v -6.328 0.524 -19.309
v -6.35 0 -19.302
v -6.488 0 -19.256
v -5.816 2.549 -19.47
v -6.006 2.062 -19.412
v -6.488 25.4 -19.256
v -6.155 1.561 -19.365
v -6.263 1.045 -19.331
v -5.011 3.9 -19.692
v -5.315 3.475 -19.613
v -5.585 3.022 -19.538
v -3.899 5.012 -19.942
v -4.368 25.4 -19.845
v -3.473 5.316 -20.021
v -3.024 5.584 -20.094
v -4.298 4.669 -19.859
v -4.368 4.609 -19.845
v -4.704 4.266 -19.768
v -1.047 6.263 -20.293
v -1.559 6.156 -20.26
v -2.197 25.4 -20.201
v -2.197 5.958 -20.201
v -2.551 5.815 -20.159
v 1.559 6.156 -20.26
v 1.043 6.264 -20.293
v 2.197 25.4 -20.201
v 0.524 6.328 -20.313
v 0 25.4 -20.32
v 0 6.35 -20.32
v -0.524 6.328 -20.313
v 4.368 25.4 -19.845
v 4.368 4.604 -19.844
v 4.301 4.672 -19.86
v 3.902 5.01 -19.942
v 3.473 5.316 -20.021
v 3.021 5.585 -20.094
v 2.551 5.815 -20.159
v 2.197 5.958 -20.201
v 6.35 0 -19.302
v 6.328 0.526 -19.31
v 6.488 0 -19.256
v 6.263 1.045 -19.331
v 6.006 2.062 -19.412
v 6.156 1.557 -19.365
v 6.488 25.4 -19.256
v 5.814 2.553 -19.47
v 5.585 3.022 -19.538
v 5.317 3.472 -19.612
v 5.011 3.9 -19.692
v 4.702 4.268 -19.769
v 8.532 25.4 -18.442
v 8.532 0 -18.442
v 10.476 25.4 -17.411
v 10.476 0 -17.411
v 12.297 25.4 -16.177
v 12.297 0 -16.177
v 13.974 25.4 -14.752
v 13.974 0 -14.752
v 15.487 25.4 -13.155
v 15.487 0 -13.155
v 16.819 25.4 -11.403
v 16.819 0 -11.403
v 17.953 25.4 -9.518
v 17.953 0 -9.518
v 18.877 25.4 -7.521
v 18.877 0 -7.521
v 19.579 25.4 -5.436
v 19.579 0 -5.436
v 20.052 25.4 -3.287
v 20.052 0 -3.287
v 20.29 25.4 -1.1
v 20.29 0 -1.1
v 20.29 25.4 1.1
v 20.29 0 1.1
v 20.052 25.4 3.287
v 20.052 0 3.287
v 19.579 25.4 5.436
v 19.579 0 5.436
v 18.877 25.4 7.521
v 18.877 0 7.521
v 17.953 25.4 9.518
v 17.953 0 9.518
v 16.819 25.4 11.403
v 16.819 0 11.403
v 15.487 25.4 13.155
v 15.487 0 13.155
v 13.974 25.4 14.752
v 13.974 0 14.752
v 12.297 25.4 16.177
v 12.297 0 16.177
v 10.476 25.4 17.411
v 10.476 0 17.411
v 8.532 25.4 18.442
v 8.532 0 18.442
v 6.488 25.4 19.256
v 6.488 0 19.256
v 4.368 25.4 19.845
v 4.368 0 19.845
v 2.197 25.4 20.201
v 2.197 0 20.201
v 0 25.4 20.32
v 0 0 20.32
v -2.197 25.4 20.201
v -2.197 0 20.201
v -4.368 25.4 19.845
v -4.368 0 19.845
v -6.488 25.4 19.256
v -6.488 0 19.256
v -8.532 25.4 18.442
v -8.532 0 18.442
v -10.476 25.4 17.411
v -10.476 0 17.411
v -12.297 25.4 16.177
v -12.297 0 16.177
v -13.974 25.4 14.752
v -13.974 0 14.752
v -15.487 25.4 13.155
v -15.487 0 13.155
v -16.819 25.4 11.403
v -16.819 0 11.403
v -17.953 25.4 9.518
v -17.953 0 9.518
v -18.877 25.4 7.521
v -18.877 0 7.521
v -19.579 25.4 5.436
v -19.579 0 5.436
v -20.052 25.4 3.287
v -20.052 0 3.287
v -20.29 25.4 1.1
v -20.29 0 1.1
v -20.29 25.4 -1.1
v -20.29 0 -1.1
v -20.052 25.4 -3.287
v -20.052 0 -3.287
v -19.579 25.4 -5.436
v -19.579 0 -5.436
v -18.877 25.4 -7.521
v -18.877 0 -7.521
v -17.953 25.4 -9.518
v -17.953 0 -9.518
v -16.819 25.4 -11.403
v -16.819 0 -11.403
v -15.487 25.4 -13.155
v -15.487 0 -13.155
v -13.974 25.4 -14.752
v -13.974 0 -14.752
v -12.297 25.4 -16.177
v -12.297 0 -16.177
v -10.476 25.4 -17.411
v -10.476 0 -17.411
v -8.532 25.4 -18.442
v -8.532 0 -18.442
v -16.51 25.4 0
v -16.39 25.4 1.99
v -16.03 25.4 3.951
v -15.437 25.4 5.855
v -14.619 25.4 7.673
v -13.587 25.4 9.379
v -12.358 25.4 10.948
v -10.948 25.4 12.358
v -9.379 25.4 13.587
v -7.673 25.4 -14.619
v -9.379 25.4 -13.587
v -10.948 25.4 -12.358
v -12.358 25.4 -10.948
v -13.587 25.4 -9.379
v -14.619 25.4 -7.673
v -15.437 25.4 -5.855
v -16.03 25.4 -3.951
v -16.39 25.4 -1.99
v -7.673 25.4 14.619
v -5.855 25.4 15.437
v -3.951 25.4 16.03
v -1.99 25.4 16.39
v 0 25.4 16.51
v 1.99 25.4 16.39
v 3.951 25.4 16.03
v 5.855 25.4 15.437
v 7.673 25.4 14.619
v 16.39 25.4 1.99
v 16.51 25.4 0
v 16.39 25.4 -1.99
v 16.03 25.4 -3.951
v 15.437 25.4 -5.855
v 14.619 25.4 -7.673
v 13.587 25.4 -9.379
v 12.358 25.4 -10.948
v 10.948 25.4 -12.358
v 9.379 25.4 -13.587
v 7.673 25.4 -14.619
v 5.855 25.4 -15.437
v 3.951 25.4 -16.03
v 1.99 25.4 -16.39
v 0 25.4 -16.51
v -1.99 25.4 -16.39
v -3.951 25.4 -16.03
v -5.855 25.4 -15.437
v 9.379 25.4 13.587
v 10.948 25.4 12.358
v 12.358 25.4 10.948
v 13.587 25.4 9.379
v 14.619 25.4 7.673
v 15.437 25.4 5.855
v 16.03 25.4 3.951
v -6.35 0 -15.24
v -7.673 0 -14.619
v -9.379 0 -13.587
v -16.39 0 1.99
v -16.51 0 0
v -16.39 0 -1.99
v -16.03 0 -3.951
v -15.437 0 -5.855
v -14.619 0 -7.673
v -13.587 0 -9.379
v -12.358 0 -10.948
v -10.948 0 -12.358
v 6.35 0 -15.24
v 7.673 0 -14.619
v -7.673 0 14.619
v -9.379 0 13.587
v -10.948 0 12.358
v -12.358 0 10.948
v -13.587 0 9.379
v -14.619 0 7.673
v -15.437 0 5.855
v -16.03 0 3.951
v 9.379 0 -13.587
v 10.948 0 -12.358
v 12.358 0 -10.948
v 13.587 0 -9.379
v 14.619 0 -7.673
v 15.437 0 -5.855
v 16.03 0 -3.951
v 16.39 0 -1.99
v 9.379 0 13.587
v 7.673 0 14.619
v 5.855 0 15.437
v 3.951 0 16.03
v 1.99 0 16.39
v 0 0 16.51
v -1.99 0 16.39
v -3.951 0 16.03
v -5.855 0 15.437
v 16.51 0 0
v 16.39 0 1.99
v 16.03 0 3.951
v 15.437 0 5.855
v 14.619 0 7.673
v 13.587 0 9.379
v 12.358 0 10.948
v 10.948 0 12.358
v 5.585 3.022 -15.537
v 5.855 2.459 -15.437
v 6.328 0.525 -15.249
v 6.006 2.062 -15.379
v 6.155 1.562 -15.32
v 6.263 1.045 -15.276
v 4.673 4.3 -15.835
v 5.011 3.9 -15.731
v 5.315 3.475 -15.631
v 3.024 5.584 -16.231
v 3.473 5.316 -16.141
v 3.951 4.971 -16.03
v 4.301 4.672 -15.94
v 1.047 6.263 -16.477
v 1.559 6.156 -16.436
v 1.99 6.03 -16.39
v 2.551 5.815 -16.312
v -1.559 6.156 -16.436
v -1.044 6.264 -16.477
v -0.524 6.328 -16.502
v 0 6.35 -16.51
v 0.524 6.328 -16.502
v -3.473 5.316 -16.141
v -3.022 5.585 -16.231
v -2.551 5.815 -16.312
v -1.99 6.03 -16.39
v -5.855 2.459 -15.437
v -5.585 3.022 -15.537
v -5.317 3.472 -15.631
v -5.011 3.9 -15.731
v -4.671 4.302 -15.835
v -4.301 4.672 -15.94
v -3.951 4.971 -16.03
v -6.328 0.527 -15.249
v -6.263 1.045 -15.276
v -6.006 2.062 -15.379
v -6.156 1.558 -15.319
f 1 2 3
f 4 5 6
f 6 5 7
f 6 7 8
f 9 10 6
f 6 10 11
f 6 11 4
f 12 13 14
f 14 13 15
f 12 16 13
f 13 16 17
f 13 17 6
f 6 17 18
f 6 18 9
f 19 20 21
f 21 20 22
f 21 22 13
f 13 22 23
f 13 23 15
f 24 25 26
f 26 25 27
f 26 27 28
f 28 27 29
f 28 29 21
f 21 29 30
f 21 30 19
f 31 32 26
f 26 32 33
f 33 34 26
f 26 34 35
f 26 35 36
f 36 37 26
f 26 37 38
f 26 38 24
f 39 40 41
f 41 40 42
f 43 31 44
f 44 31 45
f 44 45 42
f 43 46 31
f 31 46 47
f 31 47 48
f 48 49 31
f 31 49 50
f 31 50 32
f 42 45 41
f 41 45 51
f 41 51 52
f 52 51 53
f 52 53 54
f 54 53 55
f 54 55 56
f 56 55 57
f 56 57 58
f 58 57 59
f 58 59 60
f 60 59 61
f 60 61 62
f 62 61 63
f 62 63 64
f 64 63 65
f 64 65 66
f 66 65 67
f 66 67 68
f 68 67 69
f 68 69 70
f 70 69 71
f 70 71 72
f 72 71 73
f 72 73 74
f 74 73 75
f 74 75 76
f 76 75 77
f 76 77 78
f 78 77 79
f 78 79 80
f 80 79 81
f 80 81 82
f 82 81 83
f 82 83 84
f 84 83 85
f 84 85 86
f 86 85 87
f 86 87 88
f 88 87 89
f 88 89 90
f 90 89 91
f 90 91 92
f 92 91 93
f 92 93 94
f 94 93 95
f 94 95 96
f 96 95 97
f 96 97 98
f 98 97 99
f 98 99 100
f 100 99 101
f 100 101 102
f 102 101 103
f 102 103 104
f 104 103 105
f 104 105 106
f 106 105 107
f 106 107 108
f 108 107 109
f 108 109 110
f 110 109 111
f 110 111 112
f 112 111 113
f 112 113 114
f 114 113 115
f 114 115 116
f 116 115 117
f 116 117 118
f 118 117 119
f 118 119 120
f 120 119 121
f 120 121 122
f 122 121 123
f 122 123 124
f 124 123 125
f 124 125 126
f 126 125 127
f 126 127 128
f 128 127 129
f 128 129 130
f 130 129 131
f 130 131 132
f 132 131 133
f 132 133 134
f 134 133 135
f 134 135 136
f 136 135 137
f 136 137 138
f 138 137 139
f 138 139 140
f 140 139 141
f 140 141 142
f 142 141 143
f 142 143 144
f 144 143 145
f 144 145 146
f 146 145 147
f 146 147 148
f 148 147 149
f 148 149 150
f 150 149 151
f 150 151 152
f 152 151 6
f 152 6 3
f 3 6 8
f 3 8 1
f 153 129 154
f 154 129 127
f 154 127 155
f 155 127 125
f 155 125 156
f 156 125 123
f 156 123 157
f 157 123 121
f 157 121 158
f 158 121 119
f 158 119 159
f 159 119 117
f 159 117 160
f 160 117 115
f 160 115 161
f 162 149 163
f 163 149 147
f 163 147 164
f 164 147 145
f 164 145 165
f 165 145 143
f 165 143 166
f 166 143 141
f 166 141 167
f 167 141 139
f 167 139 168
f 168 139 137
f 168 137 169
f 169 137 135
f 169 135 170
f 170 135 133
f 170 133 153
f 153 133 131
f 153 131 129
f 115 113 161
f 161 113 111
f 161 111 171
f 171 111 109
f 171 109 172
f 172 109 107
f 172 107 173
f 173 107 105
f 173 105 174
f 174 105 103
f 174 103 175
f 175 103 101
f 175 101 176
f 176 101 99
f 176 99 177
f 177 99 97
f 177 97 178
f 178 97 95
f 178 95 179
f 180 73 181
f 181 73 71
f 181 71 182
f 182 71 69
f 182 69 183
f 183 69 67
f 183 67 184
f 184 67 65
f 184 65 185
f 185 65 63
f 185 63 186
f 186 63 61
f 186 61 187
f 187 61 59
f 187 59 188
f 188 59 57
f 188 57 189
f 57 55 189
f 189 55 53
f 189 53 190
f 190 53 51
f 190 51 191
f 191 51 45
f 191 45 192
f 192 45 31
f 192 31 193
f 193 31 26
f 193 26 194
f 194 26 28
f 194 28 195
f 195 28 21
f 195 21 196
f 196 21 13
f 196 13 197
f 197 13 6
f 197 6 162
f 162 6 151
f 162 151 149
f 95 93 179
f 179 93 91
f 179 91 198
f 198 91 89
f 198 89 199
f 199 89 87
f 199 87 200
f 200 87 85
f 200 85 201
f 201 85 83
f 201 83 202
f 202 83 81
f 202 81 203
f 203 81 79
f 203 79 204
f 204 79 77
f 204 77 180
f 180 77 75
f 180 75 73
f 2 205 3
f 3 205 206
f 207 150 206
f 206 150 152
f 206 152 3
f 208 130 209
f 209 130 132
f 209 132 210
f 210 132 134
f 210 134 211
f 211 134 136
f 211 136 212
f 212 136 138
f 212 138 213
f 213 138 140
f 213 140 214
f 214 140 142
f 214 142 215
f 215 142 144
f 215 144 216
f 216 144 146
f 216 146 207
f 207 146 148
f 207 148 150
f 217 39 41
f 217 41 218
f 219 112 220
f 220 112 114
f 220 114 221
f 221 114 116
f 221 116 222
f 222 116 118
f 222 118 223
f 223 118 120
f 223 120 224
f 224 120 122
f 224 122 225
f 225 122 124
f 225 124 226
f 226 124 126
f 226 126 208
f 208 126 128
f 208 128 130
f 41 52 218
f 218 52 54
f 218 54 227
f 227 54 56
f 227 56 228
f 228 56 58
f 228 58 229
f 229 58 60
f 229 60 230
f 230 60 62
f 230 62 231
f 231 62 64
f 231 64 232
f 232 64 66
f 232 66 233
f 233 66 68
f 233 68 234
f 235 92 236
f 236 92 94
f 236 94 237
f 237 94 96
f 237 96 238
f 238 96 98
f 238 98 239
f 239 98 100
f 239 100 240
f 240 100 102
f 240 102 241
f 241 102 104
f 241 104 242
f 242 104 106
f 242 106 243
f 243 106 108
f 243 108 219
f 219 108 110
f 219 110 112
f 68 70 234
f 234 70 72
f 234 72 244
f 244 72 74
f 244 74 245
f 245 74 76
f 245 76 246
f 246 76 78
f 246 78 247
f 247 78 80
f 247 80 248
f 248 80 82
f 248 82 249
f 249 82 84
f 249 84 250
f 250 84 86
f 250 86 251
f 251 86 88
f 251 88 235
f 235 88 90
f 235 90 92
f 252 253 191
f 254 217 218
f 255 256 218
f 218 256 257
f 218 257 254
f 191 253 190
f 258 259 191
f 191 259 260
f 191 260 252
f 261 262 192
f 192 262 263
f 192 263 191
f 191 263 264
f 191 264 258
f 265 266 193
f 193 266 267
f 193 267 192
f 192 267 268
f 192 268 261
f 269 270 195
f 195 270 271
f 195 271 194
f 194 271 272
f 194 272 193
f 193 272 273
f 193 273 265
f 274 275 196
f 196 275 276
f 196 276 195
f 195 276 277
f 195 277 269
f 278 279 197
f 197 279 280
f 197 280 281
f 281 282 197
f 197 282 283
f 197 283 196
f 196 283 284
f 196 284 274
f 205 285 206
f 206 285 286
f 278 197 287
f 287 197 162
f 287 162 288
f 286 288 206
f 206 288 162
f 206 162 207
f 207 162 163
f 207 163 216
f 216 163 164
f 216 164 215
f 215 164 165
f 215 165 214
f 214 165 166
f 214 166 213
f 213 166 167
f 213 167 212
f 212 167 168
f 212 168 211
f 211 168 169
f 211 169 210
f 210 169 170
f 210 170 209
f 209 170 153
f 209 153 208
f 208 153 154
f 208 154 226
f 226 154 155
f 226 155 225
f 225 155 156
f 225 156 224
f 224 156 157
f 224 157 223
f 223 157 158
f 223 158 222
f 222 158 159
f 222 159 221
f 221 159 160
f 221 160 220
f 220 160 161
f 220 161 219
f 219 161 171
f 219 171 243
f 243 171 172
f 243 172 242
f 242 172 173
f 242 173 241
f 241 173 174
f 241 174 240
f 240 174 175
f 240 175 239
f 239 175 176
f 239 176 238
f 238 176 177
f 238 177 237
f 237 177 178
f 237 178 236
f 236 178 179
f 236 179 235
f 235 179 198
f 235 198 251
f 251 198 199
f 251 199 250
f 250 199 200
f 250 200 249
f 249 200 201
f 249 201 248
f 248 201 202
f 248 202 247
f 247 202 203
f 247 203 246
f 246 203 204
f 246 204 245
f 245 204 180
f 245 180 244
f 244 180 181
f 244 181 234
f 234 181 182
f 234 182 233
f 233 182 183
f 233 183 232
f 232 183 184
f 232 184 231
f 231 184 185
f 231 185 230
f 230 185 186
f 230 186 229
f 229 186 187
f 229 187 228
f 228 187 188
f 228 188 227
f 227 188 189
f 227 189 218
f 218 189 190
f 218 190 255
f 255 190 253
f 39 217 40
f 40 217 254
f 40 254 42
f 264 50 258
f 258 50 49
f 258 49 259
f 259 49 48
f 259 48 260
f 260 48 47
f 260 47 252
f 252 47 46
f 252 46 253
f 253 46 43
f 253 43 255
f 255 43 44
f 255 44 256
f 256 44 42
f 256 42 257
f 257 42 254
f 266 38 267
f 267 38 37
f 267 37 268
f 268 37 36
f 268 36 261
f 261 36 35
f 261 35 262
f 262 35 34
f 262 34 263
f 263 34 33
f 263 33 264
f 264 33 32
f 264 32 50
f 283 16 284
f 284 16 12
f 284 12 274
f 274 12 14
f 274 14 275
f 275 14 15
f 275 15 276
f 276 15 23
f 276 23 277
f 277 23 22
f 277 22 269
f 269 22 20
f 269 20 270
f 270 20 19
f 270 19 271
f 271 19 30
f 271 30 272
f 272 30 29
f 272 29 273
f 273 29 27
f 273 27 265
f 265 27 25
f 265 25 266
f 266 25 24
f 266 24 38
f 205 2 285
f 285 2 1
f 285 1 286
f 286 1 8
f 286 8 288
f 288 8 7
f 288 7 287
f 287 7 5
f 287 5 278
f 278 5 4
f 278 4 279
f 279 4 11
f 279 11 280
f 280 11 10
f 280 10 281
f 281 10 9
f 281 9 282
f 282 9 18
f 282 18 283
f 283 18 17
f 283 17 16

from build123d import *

# Parameters (mm, degrees)
SKETCH1_R           = 20.32
BOSS_EXTRUDE1_DEPTH = 25.4
SKETCH2_R           = 16.51
CUT_EXTRUDE1_DEPTH  = 39.353158931
SKETCH3_R           = 6.35
CUT_EXTRUDE2_DEPTH  = 39.353158931


with BuildPart() as part:
    # Sketch1 → Boss-Extrude1 (new body)
    with BuildSketch(Plane(origin=(0, 0, 0), x_dir=(1, 0, 0), z_dir=(0, 1, 0))):
        with Locations(Location((0, 0, 0), (0, 0, 270))):
            Circle(SKETCH1_R)
    extrude(amount=BOSS_EXTRUDE1_DEPTH)

    # Sketch2 → Cut-Extrude1 (cut, through all)
    with BuildSketch(Plane(origin=(0, 25.4, 0), x_dir=(1, 0, 0), z_dir=(0, 1, 0))):
        with Locations(Location((0, 0, 0), (0, 0, 270))):
            Circle(SKETCH2_R)
    extrude(amount=-CUT_EXTRUDE1_DEPTH, mode=Mode.SUBTRACT)

    # Sketch3 → Cut-Extrude2 (cut, through all)
    with BuildSketch(Plane.XY):
        Circle(SKETCH3_R)
    extrude(amount=-CUT_EXTRUDE2_DEPTH, mode=Mode.SUBTRACT)


solid = part.part
